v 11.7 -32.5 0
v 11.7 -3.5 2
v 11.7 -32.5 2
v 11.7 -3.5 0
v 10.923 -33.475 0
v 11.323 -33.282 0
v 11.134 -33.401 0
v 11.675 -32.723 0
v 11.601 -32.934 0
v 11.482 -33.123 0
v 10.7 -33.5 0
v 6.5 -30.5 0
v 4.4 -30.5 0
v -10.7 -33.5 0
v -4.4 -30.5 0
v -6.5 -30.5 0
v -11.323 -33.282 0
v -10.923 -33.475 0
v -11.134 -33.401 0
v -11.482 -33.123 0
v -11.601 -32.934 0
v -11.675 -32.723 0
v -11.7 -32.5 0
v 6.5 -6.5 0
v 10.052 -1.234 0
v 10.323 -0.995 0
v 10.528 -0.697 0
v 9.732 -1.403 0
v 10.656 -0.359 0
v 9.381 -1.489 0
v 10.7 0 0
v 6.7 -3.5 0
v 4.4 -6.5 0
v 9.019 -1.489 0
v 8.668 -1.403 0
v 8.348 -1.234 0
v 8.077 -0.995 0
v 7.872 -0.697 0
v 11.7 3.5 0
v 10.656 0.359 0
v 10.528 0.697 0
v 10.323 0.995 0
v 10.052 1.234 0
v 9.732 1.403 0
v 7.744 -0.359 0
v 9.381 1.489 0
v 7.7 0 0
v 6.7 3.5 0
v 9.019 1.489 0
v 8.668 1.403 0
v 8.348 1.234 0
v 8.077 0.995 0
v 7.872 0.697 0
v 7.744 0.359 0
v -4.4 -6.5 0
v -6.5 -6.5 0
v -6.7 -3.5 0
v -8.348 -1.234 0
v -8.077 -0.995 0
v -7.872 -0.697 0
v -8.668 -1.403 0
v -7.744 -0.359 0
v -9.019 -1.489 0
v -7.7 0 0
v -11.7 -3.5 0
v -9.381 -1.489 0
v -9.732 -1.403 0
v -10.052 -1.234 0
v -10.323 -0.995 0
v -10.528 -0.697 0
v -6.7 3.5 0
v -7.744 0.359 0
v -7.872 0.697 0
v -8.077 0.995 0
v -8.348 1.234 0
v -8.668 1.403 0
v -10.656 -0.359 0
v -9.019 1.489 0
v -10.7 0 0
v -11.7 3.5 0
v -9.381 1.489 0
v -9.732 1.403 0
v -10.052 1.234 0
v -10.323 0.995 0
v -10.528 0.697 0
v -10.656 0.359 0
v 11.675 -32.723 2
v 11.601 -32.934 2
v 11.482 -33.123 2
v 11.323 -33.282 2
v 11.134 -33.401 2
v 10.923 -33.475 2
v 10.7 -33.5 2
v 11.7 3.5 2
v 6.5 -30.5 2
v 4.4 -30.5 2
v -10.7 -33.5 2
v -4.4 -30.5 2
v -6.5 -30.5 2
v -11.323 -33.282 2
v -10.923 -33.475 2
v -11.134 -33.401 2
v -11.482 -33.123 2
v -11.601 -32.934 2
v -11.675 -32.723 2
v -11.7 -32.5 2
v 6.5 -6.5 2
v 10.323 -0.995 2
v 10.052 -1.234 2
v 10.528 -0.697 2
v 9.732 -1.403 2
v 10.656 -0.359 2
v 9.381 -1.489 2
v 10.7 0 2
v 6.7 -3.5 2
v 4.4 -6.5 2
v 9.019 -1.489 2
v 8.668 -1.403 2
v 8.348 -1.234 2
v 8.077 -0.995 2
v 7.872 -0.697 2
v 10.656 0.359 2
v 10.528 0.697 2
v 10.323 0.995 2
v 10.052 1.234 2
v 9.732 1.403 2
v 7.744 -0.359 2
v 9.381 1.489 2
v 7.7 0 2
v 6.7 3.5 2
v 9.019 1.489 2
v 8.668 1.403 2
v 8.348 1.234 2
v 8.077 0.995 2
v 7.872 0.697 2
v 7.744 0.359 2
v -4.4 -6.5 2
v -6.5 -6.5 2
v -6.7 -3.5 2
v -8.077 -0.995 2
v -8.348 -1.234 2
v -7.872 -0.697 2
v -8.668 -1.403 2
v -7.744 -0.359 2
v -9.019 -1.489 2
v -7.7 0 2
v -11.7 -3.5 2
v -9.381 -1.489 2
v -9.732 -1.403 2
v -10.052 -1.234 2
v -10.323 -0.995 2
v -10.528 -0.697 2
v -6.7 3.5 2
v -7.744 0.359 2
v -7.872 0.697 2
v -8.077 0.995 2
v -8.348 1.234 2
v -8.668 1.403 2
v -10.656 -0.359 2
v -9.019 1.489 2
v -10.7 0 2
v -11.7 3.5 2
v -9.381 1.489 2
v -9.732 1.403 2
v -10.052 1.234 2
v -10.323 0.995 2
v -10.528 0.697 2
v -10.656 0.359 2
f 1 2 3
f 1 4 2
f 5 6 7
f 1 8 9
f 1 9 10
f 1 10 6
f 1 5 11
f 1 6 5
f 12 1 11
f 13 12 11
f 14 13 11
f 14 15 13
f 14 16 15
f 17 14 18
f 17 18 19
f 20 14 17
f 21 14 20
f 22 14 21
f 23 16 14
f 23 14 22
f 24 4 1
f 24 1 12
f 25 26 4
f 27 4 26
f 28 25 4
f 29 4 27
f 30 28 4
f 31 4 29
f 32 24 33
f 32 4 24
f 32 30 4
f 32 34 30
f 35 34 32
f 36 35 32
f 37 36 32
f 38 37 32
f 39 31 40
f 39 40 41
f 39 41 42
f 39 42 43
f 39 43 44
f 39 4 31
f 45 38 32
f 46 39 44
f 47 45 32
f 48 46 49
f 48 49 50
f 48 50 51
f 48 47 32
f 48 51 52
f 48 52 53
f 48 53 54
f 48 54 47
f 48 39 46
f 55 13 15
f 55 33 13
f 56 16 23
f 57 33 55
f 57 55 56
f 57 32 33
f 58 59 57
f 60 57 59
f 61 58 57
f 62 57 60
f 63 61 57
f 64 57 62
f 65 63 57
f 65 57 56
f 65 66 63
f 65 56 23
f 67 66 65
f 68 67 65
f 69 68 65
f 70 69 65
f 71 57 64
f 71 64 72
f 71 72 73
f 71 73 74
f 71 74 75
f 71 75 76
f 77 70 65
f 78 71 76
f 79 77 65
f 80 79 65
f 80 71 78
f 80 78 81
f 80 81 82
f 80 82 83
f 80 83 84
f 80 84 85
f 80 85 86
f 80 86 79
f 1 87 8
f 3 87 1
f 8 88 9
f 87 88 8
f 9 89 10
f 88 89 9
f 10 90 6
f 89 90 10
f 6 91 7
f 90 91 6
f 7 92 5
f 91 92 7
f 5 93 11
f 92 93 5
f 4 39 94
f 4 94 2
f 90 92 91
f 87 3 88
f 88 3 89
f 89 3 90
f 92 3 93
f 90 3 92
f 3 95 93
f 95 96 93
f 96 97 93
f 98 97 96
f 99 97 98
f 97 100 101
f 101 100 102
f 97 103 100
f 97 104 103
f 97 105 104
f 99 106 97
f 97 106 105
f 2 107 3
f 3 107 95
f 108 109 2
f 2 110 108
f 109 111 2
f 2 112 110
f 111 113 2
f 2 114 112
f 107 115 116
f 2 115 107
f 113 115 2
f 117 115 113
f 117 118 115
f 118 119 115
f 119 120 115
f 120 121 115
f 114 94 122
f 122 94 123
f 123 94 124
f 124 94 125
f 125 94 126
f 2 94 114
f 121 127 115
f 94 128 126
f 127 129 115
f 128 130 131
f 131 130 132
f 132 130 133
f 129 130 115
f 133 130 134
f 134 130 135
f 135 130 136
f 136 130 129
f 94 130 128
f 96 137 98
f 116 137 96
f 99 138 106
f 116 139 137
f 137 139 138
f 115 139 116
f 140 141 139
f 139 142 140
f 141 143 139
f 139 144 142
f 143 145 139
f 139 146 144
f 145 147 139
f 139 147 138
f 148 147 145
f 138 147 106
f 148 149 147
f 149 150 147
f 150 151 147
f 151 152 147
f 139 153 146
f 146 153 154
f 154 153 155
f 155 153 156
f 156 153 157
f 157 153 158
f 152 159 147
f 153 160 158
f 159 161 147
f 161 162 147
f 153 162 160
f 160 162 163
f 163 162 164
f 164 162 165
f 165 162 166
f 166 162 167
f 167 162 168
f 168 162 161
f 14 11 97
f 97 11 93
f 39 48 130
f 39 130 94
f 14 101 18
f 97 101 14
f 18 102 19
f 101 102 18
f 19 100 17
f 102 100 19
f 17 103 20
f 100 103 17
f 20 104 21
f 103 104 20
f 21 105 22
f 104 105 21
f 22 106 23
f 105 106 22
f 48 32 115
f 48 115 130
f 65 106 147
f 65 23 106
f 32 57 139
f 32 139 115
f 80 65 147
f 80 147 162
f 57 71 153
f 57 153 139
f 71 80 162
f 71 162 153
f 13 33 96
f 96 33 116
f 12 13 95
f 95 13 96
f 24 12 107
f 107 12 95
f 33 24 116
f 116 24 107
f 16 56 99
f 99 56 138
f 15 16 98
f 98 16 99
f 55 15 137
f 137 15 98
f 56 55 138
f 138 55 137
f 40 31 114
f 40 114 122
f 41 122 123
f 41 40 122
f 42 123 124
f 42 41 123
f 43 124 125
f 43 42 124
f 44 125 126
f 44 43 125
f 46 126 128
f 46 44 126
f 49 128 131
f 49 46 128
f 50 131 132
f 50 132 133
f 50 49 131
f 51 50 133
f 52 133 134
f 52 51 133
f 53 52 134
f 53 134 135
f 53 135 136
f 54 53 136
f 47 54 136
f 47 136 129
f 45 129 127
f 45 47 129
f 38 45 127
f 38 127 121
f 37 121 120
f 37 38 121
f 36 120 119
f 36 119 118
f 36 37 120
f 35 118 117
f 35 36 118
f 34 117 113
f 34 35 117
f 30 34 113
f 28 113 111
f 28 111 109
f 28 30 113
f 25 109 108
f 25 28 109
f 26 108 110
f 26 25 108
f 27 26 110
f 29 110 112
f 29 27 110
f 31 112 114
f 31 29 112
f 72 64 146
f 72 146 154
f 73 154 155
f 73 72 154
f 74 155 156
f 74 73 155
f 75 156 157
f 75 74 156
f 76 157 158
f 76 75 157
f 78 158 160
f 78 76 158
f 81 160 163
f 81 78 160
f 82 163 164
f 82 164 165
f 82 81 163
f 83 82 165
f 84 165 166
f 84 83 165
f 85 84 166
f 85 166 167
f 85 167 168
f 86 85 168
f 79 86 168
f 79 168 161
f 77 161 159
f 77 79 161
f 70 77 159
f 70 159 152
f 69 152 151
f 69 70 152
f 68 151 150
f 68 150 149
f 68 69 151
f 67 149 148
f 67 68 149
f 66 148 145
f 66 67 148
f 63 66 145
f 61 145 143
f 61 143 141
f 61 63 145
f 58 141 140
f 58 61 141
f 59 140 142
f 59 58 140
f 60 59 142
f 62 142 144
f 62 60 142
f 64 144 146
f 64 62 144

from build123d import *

# Parameters (mm, degrees)
SKETCH_R  = 1.5
SKETCH_W  = 2.1
SKETCH_H  = 24
PAD_DEPTH = 2
FILLET_R  = 1


with BuildPart() as part:
    # Sketch → Pad (new body)
    with BuildSketch(Plane.XY):
        Polygon((-11.7, 3.5), (-6.7, 3.5), (-6.7, -3.5), (6.7, -3.5), (6.7, 3.5), (11.7, 3.5), (11.7, -3.5), (11.7, -33.5), (-11.7, -33.5), (-11.7, -3.5), align=None)
        with Locations((-9.2, 0)):
            Circle(SKETCH_R, mode=Mode.SUBTRACT)
        with Locations((9.2, 0)):
            Circle(SKETCH_R, mode=Mode.SUBTRACT)
        with Locations((-5.45, -18.5)):
            Rectangle(SKETCH_W, SKETCH_H, mode=Mode.SUBTRACT)
        with Locations((5.45, -18.5)):
            Rectangle(SKETCH_W, SKETCH_H, mode=Mode.SUBTRACT)
    extrude(amount=PAD_DEPTH)

    # Fillet
    fillet_edges = [part.edges().sort_by_distance(p)[0] for p in [
        (-11.7, -33.5, 1),
        (11.7, -33.5, 1),
    ]]
    fillet(fillet_edges, radius=FILLET_R)


solid = part.part
